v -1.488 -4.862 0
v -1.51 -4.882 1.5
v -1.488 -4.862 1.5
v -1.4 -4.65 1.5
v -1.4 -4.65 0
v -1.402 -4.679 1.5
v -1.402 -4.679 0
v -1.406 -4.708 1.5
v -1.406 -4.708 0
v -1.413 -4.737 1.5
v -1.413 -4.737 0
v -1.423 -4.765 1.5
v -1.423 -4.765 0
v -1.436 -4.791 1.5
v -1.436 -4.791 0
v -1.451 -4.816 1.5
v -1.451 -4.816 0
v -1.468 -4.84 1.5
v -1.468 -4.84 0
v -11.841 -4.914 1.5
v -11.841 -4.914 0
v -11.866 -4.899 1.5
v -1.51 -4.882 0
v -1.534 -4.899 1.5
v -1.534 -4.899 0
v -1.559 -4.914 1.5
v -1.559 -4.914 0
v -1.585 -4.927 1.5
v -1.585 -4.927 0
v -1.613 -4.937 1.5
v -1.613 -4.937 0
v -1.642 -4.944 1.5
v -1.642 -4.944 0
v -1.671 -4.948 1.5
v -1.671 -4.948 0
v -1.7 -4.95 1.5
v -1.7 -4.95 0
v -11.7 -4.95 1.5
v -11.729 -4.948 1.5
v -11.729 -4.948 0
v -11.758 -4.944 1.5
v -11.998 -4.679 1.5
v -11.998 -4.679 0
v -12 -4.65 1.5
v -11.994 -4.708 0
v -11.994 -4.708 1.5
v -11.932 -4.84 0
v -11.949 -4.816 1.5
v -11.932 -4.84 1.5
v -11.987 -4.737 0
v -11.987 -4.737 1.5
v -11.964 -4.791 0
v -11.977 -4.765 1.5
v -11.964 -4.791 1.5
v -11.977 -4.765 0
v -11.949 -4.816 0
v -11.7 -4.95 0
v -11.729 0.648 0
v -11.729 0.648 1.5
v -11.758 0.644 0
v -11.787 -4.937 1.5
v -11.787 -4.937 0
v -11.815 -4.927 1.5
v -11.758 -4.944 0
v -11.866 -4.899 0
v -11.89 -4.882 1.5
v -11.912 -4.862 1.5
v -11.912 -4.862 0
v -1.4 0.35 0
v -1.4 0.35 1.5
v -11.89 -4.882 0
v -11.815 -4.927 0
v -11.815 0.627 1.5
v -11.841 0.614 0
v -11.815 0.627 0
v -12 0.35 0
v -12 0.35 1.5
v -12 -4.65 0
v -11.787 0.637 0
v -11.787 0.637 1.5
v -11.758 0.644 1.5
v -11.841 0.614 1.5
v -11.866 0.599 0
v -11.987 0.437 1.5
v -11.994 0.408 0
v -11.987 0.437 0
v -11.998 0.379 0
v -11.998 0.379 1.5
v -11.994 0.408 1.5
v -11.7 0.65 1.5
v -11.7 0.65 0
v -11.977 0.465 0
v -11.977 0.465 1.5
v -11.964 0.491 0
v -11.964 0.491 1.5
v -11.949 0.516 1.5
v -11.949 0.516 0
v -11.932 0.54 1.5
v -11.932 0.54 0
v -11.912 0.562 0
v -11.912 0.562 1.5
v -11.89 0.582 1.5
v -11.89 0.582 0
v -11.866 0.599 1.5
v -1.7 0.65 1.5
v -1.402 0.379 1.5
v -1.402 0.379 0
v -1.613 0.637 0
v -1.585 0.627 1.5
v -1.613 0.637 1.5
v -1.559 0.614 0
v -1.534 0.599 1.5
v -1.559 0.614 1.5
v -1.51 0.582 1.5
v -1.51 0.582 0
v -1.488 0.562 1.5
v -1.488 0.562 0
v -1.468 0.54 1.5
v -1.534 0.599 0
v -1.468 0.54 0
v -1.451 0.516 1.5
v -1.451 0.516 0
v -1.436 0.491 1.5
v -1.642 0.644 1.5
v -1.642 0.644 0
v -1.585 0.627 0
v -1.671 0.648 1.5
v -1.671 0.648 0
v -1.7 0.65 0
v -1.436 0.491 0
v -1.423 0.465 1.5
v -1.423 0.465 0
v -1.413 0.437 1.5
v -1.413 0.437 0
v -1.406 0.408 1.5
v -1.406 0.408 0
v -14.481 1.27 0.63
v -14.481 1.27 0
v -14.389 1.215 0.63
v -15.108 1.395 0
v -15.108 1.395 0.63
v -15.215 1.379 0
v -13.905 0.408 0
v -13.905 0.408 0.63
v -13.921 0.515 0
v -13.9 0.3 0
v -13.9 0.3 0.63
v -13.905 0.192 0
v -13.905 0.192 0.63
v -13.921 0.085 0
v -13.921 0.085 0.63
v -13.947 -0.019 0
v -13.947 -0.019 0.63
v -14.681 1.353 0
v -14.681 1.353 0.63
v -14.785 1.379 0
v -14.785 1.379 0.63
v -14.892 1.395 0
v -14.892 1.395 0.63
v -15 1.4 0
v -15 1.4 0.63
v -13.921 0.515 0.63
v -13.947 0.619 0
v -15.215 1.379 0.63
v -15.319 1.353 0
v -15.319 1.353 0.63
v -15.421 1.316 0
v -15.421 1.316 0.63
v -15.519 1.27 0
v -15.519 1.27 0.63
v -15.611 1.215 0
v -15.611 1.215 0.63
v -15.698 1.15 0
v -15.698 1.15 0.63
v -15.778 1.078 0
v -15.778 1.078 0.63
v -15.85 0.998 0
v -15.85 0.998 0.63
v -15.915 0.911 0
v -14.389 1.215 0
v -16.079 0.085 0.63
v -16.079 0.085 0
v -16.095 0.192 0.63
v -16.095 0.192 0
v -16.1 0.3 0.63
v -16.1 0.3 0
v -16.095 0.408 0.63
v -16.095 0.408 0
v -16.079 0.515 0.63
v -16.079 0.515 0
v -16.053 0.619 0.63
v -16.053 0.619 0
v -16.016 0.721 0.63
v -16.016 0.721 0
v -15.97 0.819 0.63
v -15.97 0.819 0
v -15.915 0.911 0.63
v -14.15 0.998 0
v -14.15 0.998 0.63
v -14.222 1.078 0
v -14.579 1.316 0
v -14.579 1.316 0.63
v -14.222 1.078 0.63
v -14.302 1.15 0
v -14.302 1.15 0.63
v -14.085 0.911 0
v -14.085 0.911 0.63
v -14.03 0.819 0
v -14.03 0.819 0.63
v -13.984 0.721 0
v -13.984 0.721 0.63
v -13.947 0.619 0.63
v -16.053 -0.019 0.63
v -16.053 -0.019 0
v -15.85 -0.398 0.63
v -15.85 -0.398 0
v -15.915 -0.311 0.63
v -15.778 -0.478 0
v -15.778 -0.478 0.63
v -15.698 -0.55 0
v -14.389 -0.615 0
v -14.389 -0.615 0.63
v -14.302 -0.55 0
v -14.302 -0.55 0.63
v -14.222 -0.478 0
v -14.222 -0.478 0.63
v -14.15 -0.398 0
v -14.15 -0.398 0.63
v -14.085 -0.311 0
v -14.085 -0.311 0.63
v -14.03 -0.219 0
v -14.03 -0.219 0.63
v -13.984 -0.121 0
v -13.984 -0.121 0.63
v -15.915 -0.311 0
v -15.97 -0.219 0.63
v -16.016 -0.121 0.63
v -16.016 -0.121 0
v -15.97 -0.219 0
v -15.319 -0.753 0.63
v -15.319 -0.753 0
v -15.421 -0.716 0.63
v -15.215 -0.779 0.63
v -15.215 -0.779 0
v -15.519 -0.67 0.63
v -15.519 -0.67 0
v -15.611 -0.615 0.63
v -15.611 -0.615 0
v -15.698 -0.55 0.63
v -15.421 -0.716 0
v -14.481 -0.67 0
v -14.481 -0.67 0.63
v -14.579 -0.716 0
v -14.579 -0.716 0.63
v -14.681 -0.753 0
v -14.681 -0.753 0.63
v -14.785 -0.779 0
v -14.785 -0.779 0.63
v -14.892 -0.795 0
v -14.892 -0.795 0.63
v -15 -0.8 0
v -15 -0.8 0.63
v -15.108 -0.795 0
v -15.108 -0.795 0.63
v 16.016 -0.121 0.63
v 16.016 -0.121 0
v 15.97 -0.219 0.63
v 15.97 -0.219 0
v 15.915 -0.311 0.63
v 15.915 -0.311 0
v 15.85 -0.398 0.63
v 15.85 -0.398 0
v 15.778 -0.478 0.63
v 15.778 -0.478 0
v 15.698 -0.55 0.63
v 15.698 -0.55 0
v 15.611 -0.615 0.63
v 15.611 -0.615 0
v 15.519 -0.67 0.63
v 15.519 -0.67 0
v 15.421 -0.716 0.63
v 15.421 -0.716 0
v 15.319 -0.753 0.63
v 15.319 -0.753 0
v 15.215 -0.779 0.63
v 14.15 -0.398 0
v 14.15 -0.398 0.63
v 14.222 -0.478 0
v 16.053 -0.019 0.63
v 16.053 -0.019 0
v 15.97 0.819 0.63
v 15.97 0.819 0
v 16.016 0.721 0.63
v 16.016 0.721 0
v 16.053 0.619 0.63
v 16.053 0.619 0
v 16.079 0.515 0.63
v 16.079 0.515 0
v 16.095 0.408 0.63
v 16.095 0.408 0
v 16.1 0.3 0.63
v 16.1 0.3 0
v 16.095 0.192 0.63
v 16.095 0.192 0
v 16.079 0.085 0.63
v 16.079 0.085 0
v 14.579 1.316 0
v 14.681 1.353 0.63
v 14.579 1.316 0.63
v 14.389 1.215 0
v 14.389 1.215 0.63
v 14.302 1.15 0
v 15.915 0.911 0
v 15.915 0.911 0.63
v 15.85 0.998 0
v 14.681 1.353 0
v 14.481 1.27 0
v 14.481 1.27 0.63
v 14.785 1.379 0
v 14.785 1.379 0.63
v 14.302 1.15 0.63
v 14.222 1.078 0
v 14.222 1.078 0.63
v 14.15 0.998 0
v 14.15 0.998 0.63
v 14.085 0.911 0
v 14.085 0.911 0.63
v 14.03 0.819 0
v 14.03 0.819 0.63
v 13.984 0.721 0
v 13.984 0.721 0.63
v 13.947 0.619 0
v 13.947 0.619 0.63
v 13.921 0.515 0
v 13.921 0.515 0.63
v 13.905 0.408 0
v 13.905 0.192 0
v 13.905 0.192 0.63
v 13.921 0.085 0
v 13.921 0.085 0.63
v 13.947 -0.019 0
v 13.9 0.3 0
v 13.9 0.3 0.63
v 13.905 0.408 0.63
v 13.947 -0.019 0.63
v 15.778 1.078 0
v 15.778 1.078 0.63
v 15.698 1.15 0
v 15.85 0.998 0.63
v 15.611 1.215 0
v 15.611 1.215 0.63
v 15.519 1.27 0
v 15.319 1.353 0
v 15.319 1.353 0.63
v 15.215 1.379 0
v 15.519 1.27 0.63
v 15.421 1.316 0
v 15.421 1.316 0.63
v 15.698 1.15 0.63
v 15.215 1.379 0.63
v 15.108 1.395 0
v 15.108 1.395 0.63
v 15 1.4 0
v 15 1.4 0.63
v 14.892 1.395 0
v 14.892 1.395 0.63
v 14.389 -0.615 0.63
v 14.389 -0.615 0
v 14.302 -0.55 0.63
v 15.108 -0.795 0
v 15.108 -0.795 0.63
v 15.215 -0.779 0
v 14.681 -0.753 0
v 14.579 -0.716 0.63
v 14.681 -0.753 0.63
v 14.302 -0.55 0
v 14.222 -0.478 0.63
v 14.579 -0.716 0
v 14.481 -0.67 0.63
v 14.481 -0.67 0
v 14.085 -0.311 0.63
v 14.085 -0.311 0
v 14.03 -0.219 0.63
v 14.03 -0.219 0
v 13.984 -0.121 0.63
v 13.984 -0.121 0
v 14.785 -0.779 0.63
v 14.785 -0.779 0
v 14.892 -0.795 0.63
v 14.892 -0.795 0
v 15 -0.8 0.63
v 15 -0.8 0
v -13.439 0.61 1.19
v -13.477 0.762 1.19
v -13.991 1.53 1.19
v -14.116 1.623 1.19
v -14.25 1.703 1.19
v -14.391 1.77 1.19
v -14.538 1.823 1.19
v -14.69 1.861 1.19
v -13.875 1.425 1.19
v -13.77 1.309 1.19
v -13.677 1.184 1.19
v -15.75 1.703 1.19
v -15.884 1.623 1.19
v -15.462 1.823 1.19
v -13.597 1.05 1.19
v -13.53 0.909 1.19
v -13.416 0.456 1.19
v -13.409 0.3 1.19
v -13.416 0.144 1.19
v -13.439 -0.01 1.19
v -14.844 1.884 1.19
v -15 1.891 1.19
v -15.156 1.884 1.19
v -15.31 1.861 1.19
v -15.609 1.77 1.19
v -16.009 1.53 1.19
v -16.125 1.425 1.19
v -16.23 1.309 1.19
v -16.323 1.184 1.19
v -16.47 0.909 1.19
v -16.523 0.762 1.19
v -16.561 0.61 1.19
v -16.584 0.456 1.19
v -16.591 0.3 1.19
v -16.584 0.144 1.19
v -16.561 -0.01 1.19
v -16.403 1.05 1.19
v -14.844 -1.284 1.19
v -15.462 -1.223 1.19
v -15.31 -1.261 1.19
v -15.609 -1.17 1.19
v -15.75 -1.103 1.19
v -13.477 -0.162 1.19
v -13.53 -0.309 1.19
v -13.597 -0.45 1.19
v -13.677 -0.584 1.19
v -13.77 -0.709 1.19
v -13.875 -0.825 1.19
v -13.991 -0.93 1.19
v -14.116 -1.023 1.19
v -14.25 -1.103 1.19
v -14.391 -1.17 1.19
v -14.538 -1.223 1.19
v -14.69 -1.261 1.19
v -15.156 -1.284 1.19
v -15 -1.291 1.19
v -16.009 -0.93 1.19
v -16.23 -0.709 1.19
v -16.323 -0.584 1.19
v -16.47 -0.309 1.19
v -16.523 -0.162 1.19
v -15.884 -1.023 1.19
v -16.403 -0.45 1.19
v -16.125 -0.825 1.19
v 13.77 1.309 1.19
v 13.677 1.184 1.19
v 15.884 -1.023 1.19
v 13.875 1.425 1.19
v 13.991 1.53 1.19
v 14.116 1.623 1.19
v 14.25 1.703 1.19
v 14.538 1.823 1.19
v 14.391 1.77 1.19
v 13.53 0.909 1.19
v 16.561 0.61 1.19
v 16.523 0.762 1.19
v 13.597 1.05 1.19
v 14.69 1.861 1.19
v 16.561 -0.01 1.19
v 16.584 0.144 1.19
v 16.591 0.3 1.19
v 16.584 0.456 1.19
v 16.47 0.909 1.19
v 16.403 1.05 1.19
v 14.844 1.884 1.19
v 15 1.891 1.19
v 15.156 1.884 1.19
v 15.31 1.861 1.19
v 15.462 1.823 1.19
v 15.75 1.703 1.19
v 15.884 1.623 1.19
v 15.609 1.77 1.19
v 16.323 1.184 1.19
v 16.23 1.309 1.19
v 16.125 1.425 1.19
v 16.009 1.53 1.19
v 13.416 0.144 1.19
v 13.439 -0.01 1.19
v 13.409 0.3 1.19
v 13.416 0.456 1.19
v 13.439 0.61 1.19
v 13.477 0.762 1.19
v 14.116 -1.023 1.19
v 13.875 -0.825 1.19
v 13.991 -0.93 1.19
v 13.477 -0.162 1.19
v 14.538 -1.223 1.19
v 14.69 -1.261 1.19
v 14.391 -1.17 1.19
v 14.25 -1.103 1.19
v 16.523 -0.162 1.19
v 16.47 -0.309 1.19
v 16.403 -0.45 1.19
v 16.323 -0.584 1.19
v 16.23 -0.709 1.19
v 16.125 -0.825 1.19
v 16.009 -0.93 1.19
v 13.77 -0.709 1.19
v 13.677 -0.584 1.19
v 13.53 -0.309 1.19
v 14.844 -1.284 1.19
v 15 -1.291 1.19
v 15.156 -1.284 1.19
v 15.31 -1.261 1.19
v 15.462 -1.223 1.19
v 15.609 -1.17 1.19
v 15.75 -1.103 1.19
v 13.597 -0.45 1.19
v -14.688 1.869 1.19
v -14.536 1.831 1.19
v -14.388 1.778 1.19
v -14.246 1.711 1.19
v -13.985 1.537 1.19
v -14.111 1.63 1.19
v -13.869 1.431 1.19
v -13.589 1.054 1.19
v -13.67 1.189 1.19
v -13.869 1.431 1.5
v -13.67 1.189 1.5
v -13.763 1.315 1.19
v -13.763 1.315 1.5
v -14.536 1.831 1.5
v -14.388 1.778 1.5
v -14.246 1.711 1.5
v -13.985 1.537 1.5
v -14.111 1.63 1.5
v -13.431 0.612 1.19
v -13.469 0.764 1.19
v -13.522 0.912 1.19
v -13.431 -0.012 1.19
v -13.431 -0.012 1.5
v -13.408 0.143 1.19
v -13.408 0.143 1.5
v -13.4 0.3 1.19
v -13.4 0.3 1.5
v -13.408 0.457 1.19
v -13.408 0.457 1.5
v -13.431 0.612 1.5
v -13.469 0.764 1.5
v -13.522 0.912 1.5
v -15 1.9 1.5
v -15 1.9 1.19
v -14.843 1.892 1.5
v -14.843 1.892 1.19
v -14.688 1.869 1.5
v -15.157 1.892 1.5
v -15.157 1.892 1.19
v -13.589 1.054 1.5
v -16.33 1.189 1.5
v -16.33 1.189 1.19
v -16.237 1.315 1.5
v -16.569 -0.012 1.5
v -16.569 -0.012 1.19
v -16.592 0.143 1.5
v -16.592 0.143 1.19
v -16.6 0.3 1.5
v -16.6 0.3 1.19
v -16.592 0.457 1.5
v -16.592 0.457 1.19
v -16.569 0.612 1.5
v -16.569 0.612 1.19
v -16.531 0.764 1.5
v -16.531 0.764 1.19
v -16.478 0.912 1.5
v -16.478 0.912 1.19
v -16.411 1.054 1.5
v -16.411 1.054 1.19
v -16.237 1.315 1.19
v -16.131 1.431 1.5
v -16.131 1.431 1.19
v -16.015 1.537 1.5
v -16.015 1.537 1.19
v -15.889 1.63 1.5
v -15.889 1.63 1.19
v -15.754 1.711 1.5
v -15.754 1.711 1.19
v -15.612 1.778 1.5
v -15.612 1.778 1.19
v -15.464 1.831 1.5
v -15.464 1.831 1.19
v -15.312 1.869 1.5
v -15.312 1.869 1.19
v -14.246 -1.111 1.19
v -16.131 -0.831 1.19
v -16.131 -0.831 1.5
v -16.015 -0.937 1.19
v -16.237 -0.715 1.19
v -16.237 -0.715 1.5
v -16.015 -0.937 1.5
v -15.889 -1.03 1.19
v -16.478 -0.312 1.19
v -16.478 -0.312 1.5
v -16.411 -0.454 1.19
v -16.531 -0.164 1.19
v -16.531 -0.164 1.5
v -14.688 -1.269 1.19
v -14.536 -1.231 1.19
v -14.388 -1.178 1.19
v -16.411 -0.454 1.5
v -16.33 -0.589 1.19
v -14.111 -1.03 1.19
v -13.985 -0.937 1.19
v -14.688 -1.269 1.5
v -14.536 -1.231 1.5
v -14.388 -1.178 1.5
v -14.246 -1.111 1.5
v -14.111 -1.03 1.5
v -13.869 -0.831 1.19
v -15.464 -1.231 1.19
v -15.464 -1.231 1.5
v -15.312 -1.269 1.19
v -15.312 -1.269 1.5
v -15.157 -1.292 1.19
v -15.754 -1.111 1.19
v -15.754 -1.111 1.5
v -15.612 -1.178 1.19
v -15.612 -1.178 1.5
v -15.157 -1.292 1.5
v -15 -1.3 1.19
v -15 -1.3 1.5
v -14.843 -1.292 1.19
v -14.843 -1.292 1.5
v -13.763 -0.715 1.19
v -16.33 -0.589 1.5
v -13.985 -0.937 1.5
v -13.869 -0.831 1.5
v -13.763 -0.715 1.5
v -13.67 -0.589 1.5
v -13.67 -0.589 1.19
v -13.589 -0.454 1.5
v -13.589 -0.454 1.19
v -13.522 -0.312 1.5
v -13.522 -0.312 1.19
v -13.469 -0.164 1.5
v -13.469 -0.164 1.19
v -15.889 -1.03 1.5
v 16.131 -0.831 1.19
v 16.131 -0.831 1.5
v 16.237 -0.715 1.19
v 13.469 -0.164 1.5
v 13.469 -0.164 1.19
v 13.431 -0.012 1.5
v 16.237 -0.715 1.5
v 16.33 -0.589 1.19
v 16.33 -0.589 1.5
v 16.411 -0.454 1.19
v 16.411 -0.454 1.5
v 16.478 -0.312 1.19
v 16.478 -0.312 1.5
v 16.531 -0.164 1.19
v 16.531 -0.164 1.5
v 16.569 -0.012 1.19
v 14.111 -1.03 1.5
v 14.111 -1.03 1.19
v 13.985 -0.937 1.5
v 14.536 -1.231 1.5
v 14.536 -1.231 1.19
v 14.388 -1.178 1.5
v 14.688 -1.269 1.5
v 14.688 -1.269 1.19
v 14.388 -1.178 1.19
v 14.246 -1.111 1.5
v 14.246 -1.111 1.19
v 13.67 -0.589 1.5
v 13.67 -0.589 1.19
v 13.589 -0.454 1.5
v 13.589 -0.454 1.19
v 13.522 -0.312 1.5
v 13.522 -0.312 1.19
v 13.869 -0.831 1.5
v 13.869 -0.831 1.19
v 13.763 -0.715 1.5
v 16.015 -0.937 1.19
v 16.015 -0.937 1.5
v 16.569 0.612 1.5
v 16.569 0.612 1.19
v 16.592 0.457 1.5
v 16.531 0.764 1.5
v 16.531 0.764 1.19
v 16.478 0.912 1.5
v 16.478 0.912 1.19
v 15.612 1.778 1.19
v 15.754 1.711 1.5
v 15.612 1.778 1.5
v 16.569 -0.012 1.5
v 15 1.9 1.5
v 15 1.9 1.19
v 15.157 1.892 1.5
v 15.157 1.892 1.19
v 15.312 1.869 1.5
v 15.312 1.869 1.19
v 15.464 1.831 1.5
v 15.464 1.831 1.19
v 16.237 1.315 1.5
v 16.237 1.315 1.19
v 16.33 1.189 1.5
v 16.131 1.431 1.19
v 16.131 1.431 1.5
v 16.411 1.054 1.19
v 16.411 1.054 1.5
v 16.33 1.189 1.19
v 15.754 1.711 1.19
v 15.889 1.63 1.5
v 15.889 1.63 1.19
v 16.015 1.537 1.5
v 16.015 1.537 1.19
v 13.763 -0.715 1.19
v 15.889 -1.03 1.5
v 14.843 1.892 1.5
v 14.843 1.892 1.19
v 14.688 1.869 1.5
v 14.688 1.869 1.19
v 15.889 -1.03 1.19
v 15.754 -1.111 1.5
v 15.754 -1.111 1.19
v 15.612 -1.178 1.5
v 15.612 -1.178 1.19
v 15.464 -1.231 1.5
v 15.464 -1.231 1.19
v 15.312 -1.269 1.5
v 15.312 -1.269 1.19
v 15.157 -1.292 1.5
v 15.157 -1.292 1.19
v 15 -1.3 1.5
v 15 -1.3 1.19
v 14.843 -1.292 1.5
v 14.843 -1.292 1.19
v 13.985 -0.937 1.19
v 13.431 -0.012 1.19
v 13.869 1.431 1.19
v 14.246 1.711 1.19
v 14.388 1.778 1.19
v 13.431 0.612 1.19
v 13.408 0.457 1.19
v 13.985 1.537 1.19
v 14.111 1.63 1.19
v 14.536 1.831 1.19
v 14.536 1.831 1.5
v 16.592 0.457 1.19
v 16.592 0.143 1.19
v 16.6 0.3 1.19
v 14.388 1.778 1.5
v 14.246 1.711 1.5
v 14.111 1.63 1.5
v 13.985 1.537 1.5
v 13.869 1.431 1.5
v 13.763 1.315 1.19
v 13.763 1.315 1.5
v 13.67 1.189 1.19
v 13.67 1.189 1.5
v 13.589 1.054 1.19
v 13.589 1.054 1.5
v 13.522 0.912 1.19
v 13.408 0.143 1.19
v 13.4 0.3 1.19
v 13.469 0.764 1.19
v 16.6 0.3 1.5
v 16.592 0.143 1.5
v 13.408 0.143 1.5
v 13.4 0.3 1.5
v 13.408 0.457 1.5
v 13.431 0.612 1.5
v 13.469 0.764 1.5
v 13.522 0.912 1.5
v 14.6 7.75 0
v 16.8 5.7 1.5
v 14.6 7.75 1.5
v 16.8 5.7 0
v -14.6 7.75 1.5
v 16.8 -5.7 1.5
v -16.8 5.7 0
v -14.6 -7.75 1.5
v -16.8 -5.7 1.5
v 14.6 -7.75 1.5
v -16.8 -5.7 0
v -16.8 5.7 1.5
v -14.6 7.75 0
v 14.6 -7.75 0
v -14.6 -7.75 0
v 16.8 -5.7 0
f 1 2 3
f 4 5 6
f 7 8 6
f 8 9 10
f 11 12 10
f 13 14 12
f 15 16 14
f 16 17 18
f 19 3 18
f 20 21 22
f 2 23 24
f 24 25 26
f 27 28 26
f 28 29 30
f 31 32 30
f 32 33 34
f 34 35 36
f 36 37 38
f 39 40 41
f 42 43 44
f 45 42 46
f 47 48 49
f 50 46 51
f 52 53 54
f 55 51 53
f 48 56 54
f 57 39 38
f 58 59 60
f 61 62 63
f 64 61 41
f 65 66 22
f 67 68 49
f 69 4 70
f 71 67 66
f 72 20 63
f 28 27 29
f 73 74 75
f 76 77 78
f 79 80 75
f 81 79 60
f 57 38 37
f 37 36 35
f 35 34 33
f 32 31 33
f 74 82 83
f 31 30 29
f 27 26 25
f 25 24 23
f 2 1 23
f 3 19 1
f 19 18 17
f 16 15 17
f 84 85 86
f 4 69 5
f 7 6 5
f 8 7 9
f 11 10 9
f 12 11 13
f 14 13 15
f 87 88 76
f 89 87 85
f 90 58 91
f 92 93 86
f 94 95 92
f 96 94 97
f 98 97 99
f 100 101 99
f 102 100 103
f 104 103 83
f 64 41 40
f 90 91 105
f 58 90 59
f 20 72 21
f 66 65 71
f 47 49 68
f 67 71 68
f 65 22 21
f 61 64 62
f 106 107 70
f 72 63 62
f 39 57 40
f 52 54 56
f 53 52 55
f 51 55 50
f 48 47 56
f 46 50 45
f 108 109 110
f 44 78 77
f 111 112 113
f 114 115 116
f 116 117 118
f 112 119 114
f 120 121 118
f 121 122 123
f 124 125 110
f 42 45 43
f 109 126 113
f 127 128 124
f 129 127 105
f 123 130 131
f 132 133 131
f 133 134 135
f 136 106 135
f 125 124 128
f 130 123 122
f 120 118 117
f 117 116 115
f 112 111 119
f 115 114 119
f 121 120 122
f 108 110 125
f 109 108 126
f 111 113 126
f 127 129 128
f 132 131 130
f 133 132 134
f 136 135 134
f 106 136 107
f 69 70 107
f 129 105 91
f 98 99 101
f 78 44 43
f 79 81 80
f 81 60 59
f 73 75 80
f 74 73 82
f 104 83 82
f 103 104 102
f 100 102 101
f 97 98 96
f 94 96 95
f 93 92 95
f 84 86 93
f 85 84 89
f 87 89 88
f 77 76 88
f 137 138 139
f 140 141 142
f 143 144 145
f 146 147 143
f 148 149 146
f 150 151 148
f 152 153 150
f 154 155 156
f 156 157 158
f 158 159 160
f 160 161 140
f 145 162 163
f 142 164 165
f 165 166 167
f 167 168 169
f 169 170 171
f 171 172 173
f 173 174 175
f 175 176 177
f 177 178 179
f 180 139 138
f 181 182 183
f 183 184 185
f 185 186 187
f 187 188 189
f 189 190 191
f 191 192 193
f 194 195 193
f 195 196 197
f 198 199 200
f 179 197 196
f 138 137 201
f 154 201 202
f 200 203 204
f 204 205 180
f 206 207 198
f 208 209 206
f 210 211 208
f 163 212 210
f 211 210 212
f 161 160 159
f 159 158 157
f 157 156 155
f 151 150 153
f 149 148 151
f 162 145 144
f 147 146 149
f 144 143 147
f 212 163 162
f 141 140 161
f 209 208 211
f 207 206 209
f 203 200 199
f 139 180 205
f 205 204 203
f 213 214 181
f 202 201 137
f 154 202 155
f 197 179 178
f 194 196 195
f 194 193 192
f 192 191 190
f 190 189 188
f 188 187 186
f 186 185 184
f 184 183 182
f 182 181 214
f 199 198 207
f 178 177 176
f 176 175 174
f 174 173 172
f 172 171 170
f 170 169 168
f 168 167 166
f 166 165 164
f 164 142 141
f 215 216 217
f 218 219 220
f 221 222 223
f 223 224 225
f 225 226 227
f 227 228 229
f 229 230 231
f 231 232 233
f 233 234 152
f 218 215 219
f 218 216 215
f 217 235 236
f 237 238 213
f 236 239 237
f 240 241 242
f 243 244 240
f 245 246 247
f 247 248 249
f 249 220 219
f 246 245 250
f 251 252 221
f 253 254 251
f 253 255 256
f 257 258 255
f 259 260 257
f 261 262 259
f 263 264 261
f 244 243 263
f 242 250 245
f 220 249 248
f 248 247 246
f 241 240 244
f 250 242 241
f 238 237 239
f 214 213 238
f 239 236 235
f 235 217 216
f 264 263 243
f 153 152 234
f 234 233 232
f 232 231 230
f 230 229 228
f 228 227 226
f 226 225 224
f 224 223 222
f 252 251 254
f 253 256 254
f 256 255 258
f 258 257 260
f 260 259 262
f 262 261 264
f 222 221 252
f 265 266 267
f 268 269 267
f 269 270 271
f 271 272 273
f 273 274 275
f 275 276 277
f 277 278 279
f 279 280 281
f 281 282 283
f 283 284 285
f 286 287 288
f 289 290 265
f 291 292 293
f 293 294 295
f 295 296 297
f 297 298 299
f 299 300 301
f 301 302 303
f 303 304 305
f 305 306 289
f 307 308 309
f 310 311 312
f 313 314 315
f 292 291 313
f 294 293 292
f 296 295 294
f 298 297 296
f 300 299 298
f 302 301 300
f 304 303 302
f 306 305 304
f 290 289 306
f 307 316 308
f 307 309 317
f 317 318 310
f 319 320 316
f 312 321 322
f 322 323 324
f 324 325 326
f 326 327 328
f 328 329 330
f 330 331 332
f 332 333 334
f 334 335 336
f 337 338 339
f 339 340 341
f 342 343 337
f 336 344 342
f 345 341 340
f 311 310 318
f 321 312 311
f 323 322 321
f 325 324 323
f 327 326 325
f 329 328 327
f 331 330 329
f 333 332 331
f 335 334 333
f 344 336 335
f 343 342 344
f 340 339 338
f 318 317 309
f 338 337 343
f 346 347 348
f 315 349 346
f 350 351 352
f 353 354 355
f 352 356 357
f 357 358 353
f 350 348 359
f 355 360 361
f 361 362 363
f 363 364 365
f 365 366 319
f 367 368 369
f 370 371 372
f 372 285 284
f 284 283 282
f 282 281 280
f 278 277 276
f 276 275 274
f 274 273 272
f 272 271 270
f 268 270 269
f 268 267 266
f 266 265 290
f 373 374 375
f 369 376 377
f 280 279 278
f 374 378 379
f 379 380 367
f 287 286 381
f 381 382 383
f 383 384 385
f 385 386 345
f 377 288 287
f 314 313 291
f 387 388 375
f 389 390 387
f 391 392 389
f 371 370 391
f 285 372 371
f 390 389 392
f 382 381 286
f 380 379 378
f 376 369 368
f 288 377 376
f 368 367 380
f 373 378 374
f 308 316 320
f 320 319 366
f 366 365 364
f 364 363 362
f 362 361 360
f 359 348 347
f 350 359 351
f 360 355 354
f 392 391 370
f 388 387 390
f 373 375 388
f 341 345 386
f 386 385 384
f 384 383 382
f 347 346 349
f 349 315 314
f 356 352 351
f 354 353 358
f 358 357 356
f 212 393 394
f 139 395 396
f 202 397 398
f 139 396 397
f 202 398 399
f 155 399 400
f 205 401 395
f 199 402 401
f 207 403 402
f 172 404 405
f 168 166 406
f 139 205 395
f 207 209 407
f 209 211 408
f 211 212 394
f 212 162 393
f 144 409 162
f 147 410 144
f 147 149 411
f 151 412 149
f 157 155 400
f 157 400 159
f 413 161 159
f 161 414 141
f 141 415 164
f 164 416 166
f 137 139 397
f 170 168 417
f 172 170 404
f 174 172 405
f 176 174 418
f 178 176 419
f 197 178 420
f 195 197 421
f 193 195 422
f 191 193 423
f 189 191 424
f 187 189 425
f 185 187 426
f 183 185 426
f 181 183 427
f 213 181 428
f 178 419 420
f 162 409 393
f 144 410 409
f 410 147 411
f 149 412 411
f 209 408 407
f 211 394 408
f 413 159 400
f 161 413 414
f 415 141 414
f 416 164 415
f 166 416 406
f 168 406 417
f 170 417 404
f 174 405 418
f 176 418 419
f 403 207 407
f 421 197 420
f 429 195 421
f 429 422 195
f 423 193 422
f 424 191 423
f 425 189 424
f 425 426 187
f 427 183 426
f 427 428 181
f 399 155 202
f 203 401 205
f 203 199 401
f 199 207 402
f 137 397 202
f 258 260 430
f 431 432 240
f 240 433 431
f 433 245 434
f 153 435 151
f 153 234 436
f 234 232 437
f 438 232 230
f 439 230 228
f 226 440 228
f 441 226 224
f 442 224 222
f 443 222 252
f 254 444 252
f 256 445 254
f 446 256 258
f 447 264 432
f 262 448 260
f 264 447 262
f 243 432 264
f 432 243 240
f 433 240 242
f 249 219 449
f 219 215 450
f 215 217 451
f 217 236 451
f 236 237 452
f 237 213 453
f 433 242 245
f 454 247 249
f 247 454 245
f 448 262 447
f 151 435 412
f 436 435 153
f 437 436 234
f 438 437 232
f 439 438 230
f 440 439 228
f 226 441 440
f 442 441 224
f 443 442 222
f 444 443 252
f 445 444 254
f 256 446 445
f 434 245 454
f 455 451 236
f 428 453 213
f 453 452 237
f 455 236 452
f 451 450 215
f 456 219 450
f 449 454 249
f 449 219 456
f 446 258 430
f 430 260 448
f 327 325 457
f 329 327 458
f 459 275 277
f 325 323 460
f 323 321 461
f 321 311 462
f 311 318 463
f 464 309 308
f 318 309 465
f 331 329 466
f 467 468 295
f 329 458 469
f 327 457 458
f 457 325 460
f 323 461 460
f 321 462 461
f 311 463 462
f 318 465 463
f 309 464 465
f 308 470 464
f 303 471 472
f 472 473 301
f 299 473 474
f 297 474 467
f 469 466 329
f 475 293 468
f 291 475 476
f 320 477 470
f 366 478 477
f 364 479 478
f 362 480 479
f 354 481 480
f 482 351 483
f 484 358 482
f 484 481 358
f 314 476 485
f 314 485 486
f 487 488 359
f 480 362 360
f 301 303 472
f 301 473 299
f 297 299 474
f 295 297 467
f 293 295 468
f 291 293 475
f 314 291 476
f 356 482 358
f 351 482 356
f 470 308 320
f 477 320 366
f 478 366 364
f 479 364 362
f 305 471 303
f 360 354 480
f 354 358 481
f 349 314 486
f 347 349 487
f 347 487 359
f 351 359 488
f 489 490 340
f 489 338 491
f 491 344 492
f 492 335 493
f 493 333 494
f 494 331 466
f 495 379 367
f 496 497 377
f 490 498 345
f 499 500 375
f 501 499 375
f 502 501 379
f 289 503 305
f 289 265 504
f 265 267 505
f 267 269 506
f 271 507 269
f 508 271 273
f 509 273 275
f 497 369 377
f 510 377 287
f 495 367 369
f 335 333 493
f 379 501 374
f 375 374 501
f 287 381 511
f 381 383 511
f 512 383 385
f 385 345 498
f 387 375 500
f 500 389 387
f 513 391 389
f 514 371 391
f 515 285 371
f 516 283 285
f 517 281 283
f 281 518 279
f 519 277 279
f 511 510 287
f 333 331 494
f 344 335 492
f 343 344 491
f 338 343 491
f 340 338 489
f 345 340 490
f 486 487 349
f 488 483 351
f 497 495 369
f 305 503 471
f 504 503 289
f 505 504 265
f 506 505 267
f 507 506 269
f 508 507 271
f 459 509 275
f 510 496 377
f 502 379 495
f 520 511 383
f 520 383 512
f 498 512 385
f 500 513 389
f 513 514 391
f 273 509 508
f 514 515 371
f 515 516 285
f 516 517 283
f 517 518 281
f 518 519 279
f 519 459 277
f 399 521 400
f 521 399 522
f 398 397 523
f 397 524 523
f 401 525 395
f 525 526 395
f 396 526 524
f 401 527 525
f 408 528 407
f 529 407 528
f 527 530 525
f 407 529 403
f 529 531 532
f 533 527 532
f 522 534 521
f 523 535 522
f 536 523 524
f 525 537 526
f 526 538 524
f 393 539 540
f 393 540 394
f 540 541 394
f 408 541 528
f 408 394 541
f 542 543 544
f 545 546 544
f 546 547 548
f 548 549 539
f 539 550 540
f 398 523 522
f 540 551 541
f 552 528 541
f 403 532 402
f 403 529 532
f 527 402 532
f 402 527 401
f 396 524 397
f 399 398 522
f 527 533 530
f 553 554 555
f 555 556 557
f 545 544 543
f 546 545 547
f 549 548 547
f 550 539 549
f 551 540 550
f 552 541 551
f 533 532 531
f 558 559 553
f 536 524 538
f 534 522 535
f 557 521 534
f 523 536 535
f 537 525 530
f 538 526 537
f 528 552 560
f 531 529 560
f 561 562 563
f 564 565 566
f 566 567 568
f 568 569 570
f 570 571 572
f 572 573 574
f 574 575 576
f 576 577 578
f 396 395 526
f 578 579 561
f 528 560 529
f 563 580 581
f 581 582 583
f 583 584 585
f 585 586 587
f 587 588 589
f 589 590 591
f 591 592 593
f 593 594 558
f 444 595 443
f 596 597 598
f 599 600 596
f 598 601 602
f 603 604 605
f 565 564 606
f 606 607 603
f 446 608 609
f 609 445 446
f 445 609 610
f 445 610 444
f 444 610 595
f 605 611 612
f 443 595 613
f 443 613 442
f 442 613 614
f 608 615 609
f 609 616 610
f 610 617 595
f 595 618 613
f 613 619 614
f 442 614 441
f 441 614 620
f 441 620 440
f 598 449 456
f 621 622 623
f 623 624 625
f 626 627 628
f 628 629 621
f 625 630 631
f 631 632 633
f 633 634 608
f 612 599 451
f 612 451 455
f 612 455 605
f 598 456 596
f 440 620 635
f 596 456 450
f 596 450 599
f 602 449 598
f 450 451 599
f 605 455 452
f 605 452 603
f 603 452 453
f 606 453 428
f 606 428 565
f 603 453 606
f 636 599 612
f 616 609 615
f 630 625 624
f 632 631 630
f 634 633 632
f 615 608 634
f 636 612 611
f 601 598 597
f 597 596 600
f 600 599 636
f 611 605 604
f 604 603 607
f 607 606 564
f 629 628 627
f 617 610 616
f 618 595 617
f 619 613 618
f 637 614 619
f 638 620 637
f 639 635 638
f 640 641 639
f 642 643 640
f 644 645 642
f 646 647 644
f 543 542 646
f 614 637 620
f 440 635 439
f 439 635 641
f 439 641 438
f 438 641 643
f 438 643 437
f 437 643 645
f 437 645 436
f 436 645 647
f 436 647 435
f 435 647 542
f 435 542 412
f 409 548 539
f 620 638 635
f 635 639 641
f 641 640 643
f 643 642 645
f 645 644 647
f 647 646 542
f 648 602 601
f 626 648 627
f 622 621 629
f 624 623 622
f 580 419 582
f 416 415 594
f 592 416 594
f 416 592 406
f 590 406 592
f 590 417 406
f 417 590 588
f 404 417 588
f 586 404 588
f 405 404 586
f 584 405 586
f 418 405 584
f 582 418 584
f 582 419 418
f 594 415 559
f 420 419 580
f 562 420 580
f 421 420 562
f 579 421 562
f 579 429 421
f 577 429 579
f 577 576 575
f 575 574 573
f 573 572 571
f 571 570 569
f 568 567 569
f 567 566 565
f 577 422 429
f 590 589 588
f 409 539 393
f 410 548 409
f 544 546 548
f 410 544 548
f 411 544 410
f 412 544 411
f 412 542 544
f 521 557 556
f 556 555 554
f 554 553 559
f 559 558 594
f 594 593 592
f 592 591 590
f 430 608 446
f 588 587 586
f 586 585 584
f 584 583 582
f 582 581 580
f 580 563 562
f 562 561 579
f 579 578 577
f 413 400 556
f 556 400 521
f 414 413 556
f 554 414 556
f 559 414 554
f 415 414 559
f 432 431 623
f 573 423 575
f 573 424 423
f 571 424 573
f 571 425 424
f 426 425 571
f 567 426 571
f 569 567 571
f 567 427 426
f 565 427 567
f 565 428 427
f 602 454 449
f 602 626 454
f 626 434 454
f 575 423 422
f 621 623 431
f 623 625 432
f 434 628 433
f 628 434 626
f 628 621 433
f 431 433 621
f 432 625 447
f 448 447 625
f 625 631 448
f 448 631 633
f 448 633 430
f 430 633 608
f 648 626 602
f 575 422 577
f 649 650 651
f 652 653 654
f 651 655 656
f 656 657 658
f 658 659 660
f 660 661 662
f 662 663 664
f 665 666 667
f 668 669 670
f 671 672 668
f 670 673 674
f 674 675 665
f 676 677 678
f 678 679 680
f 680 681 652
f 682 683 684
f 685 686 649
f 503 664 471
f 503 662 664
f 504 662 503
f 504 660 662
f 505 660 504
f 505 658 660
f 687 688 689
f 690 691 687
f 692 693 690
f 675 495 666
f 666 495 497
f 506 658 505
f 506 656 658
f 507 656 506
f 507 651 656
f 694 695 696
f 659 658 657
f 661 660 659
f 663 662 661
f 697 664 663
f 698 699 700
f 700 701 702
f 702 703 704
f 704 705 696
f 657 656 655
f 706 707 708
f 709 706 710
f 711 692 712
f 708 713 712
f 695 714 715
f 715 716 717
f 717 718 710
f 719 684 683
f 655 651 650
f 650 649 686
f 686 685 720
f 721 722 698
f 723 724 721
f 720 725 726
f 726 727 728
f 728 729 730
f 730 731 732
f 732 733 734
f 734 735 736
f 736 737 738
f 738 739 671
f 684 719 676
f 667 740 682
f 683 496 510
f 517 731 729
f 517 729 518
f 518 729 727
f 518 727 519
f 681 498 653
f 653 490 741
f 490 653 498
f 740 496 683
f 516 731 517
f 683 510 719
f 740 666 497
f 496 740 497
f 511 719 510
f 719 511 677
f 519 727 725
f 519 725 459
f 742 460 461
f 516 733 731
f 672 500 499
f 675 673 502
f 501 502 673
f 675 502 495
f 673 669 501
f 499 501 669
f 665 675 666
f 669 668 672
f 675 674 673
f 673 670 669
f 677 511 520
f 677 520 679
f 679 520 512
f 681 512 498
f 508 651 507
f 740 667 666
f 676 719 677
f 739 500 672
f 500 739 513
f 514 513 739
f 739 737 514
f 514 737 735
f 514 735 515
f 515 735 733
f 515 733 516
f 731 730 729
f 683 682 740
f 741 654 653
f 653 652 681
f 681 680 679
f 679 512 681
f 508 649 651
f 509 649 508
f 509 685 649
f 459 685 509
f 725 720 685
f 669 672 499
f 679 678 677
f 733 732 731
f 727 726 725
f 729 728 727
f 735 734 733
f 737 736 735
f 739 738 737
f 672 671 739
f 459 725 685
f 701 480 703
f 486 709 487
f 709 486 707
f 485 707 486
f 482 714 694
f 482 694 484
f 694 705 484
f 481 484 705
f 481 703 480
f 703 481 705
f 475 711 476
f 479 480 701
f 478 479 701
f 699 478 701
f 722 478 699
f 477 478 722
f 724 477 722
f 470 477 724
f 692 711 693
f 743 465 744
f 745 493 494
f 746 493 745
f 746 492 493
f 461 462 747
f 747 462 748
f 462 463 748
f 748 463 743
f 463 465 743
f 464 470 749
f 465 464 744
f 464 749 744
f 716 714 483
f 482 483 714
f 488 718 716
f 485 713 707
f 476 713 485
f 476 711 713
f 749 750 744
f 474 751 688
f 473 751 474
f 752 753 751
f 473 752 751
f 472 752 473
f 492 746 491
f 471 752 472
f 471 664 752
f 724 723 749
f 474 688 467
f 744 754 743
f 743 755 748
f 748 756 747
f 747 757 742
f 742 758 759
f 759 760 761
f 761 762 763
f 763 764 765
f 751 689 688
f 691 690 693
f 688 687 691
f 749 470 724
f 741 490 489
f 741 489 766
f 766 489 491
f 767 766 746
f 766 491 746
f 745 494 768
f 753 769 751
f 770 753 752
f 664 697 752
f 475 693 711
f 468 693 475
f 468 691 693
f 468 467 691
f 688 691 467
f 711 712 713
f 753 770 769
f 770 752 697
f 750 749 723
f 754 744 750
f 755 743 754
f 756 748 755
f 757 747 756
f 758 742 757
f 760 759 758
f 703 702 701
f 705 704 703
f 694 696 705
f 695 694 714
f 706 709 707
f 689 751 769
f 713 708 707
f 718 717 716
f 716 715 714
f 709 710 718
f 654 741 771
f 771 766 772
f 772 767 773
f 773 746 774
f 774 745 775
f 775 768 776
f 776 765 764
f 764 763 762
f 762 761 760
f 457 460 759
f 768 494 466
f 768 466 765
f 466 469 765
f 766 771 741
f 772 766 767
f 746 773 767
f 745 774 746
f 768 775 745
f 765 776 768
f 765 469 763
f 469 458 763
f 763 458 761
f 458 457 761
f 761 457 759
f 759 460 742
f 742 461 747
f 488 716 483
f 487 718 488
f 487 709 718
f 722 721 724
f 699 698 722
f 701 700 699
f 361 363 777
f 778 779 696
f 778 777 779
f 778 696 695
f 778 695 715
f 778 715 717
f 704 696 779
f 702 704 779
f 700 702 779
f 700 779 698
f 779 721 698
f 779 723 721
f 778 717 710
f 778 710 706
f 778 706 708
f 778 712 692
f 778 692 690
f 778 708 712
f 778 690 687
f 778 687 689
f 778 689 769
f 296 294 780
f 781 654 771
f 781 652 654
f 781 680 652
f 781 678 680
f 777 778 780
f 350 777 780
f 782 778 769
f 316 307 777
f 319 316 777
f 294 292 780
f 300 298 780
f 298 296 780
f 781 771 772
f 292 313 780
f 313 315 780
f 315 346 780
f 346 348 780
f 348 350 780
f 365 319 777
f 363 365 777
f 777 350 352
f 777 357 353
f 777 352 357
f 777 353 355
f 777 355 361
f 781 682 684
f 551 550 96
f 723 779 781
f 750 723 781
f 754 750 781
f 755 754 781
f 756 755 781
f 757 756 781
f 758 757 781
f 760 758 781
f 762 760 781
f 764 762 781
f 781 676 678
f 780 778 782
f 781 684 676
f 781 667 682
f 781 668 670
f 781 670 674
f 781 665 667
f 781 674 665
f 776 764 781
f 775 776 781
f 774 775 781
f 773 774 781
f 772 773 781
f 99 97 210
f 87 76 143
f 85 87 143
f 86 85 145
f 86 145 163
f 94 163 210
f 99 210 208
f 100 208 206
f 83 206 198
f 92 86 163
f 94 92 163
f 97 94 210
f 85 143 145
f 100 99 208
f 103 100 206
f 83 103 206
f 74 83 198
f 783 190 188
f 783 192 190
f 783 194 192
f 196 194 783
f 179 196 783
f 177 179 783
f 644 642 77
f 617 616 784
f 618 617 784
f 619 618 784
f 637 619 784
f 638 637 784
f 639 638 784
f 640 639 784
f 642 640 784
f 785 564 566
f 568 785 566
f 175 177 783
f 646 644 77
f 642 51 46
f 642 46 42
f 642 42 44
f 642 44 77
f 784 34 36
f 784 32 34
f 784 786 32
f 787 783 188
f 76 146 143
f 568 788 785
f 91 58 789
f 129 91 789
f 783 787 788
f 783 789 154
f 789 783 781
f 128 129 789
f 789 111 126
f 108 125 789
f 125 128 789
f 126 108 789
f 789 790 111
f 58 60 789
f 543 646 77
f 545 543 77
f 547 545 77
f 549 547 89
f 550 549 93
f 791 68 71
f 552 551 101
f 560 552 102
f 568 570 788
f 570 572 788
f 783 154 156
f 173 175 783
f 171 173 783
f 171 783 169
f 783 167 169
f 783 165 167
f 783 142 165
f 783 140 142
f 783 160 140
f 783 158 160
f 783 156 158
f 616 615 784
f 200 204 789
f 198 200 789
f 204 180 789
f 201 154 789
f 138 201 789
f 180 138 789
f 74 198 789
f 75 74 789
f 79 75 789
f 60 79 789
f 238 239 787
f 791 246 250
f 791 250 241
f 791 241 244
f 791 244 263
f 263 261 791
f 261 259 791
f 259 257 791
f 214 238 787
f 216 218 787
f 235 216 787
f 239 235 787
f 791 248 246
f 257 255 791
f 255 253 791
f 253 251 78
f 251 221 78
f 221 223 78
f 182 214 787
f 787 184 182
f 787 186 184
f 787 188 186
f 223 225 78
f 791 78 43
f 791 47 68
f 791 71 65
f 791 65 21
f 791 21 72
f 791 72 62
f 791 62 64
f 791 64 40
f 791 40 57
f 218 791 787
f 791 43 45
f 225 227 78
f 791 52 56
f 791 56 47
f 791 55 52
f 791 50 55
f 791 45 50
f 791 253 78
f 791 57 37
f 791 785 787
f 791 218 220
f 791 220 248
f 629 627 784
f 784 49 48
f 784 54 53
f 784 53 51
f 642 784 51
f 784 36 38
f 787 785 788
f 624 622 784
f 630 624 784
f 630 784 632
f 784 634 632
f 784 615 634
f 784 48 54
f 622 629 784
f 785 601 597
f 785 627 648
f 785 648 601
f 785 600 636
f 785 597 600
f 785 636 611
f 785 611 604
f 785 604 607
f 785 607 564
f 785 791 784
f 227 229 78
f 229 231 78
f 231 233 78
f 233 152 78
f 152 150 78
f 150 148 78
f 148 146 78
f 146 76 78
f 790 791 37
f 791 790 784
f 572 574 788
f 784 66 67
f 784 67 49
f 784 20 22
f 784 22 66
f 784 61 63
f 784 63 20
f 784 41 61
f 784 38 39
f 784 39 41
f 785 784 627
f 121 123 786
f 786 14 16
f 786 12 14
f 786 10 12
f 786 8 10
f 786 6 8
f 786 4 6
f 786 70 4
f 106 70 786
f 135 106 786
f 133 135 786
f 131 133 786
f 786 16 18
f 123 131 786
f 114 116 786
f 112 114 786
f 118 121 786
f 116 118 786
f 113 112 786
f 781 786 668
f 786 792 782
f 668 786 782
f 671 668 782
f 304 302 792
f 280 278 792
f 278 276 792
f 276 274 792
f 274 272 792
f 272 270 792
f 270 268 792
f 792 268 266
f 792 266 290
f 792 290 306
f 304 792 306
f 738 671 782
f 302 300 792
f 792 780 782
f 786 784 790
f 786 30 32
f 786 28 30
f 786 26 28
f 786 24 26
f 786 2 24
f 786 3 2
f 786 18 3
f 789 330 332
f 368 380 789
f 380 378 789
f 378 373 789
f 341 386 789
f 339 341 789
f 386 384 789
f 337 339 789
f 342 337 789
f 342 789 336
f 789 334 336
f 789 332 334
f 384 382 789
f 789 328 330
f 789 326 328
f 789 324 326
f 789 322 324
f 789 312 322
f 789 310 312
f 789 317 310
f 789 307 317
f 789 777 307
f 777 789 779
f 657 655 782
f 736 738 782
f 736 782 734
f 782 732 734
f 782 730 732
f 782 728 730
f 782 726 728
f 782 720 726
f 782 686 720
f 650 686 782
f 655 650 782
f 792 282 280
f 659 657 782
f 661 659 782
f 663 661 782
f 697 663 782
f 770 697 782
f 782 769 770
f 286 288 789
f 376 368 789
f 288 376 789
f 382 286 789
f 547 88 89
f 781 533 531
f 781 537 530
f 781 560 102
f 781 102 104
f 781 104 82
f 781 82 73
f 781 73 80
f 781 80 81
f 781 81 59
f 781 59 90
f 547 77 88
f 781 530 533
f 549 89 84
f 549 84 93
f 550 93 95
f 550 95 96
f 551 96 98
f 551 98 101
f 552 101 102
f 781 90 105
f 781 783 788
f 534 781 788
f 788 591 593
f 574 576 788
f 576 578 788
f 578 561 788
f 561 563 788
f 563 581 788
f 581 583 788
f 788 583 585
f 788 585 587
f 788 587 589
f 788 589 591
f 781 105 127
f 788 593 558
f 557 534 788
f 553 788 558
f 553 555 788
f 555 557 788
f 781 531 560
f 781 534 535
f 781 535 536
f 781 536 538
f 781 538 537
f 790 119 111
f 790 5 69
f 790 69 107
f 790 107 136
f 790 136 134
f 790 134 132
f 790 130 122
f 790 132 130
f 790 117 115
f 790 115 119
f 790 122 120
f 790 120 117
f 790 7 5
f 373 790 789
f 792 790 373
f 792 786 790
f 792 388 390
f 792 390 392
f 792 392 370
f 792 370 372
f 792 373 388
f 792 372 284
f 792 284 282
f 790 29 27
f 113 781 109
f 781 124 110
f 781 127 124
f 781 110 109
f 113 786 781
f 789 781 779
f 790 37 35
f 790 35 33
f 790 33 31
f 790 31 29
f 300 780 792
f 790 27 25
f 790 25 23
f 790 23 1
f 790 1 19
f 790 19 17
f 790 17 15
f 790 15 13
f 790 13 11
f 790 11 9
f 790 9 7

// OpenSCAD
$fn = $preview ? 16 : 64;

// for LXCHARGER H65AC

profileSize = [33.6, 15.5];
profileSizeInner = [29.2, 11.4];

module profileCorner(){
    polygon([
        [0, profileSize.y/2],
        [profileSizeInner.x/2, profileSize.y/2],
        [profileSize.x/2, profileSizeInner.y/2],
        [profileSize.x/2, 0],
        [0,0]
        ]);
}

module profile(){
    profileCorner();
    mirror([1,0])
        profileCorner();
    mirror([0,1]){
        profileCorner();
        mirror([1,0])
            profileCorner();
    }
}

module hole(holeDiameter, headDiameter, topDiameter, extraSink)
{
    cylinder(h=100, d=topDiameter);
    translate([0,0,-100])
    cylinder(h=100, d=holeDiameter);
    translate([0, 0, -((headDiameter-holeDiameter)/2*1.14)- extraSink])
        cylinder(h=(headDiameter-holeDiameter)/2*1.14, d1=holeDiameter, d2=headDiameter);
    translate([0, 0, -extraSink-0.01])
        cylinder(h=extraSink+0.02, d=headDiameter);
}

capDepth = 1.5;

holeYOffset = 0.3;
holeDistance = 30;
holeDiameter = 2.2;

xt30Size = [10, 5];
xt30Pos = [5.1, 3.1];
xt30Clearance = 0.3;

module cap(){
    difference()
    {
        linear_extrude(capDepth)
            profile();
        translate([holeDistance/2, holeYOffset, capDepth])
            hole(holeDiameter,3.2,holeDiameter,0.3);
        translate([-holeDistance/2, holeYOffset, capDepth])
            hole(holeDiameter,3.2,holeDiameter,0.3);
        translate([-profileSize.x/2 + xt30Pos.x, -profileSize.y/2 + xt30Pos.y, -0.01])
            minkowski(){
                cube([xt30Size.x, xt30Size.y, 5]);
                sphere(r=xt30Clearance);
            }
    }
}

cap();
